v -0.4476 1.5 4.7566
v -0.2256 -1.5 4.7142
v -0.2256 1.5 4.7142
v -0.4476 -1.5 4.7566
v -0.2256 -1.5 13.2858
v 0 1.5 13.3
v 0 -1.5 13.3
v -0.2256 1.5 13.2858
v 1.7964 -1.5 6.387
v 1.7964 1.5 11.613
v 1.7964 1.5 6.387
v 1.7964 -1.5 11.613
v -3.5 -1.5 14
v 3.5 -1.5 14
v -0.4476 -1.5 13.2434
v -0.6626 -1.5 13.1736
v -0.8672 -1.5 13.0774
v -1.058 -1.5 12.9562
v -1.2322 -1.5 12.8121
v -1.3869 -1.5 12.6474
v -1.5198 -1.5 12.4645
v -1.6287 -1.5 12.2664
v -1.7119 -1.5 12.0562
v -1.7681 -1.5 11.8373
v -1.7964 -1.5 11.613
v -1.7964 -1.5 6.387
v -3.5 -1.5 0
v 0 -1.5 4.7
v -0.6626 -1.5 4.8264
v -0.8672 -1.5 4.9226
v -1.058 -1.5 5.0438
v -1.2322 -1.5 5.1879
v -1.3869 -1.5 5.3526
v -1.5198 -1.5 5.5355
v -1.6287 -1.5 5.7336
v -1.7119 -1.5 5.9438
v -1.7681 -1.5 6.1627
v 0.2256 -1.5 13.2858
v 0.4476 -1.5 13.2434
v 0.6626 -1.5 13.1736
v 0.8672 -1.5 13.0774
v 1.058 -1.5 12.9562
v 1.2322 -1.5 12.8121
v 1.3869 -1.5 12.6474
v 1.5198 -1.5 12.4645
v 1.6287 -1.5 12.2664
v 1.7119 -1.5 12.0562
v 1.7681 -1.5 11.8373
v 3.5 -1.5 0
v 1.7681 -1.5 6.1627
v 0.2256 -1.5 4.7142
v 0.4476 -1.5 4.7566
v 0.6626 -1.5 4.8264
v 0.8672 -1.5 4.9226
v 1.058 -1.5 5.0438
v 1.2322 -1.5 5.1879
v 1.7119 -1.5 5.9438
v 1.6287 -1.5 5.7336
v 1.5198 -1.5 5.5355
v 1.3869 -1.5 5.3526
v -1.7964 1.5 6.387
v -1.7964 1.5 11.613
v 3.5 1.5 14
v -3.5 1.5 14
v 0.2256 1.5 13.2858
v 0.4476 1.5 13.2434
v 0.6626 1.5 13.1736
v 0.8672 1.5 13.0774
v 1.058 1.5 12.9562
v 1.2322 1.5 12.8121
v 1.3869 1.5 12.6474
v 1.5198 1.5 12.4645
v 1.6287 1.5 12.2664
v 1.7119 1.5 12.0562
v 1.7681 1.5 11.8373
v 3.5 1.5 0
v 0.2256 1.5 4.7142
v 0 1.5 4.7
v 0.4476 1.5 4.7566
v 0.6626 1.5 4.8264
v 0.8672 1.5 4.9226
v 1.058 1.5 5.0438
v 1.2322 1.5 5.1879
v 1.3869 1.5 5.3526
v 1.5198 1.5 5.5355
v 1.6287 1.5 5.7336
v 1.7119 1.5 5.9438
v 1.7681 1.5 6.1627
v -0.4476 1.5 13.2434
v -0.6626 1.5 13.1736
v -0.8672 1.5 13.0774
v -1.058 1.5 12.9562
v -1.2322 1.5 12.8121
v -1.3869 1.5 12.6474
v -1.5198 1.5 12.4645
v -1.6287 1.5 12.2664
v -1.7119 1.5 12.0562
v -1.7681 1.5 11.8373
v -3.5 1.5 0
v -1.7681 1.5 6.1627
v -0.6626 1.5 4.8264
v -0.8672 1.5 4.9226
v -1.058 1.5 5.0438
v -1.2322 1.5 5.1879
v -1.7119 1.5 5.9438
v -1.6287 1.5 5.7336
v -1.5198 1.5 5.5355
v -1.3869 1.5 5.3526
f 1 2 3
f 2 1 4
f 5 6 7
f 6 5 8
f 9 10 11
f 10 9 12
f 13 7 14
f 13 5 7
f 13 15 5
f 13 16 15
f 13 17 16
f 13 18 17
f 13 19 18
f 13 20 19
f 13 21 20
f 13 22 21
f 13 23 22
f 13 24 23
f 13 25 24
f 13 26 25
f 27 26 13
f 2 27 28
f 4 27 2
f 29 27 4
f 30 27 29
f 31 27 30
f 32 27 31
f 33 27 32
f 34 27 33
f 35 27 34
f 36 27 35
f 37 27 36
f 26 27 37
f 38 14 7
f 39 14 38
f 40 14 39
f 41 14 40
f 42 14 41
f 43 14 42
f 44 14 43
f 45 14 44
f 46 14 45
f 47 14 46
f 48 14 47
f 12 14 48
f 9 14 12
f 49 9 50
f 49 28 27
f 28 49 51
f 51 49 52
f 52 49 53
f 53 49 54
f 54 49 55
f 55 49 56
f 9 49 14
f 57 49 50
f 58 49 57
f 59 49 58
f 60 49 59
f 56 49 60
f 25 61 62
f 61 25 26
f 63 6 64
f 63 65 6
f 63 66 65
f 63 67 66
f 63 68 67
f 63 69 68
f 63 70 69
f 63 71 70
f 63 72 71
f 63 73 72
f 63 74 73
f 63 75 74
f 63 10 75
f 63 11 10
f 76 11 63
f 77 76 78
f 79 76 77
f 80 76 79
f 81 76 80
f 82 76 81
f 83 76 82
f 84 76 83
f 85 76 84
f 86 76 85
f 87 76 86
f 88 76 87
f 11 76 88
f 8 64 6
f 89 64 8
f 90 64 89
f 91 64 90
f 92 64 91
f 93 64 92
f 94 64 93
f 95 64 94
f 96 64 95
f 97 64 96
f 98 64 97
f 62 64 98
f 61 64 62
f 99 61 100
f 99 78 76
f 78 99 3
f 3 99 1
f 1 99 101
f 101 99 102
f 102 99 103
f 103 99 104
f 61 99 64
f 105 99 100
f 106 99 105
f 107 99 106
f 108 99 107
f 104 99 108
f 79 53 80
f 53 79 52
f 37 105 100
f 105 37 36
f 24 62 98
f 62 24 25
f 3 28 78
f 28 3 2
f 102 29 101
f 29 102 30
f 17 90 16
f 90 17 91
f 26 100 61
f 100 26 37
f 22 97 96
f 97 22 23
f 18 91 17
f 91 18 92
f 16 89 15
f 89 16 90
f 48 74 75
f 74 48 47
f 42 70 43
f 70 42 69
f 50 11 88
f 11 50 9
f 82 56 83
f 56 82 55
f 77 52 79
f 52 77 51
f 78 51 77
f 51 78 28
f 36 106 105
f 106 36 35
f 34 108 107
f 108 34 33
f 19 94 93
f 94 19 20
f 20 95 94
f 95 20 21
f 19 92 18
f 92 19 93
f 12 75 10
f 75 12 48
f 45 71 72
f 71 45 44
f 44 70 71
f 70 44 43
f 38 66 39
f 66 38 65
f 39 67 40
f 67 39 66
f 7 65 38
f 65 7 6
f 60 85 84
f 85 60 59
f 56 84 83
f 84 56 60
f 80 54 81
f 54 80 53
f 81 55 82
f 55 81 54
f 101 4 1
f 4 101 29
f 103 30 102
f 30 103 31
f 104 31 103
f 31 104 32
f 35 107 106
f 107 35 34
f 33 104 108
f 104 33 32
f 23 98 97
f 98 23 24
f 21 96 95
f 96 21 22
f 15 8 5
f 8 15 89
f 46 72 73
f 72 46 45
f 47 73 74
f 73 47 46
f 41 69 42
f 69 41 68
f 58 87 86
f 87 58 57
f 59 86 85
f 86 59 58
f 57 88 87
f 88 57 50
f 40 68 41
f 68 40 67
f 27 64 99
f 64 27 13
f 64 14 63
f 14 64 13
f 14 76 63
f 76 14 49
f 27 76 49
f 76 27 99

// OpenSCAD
$fn = 50;


difference() {
	union() {
		translate(v = [-3.5000000000, -1.5000000000, 0]) {
			cube(size = [7, 3, 14]);
		}
	}
	union() {
		translate(v = [0, -1.5000000000, 9.0000000000]) {
			rotate(a = [0, 90, 90]) {
				difference() {
					union() {
						#hull() {
							#translate(v = [2.5000000000, 0, 0]) {
								cylinder(h = 3, r = 1.8000000000, r1 = 1.8000000000, r2 = 1.8000000000);
							}
							#translate(v = [-2.5000000000, 0, 0]) {
								cylinder(h = 3, r = 1.8000000000, r1 = 1.8000000000, r2 = 1.8000000000);
							}
						}
					}
					union();
				}
			}
		}
	}
}
